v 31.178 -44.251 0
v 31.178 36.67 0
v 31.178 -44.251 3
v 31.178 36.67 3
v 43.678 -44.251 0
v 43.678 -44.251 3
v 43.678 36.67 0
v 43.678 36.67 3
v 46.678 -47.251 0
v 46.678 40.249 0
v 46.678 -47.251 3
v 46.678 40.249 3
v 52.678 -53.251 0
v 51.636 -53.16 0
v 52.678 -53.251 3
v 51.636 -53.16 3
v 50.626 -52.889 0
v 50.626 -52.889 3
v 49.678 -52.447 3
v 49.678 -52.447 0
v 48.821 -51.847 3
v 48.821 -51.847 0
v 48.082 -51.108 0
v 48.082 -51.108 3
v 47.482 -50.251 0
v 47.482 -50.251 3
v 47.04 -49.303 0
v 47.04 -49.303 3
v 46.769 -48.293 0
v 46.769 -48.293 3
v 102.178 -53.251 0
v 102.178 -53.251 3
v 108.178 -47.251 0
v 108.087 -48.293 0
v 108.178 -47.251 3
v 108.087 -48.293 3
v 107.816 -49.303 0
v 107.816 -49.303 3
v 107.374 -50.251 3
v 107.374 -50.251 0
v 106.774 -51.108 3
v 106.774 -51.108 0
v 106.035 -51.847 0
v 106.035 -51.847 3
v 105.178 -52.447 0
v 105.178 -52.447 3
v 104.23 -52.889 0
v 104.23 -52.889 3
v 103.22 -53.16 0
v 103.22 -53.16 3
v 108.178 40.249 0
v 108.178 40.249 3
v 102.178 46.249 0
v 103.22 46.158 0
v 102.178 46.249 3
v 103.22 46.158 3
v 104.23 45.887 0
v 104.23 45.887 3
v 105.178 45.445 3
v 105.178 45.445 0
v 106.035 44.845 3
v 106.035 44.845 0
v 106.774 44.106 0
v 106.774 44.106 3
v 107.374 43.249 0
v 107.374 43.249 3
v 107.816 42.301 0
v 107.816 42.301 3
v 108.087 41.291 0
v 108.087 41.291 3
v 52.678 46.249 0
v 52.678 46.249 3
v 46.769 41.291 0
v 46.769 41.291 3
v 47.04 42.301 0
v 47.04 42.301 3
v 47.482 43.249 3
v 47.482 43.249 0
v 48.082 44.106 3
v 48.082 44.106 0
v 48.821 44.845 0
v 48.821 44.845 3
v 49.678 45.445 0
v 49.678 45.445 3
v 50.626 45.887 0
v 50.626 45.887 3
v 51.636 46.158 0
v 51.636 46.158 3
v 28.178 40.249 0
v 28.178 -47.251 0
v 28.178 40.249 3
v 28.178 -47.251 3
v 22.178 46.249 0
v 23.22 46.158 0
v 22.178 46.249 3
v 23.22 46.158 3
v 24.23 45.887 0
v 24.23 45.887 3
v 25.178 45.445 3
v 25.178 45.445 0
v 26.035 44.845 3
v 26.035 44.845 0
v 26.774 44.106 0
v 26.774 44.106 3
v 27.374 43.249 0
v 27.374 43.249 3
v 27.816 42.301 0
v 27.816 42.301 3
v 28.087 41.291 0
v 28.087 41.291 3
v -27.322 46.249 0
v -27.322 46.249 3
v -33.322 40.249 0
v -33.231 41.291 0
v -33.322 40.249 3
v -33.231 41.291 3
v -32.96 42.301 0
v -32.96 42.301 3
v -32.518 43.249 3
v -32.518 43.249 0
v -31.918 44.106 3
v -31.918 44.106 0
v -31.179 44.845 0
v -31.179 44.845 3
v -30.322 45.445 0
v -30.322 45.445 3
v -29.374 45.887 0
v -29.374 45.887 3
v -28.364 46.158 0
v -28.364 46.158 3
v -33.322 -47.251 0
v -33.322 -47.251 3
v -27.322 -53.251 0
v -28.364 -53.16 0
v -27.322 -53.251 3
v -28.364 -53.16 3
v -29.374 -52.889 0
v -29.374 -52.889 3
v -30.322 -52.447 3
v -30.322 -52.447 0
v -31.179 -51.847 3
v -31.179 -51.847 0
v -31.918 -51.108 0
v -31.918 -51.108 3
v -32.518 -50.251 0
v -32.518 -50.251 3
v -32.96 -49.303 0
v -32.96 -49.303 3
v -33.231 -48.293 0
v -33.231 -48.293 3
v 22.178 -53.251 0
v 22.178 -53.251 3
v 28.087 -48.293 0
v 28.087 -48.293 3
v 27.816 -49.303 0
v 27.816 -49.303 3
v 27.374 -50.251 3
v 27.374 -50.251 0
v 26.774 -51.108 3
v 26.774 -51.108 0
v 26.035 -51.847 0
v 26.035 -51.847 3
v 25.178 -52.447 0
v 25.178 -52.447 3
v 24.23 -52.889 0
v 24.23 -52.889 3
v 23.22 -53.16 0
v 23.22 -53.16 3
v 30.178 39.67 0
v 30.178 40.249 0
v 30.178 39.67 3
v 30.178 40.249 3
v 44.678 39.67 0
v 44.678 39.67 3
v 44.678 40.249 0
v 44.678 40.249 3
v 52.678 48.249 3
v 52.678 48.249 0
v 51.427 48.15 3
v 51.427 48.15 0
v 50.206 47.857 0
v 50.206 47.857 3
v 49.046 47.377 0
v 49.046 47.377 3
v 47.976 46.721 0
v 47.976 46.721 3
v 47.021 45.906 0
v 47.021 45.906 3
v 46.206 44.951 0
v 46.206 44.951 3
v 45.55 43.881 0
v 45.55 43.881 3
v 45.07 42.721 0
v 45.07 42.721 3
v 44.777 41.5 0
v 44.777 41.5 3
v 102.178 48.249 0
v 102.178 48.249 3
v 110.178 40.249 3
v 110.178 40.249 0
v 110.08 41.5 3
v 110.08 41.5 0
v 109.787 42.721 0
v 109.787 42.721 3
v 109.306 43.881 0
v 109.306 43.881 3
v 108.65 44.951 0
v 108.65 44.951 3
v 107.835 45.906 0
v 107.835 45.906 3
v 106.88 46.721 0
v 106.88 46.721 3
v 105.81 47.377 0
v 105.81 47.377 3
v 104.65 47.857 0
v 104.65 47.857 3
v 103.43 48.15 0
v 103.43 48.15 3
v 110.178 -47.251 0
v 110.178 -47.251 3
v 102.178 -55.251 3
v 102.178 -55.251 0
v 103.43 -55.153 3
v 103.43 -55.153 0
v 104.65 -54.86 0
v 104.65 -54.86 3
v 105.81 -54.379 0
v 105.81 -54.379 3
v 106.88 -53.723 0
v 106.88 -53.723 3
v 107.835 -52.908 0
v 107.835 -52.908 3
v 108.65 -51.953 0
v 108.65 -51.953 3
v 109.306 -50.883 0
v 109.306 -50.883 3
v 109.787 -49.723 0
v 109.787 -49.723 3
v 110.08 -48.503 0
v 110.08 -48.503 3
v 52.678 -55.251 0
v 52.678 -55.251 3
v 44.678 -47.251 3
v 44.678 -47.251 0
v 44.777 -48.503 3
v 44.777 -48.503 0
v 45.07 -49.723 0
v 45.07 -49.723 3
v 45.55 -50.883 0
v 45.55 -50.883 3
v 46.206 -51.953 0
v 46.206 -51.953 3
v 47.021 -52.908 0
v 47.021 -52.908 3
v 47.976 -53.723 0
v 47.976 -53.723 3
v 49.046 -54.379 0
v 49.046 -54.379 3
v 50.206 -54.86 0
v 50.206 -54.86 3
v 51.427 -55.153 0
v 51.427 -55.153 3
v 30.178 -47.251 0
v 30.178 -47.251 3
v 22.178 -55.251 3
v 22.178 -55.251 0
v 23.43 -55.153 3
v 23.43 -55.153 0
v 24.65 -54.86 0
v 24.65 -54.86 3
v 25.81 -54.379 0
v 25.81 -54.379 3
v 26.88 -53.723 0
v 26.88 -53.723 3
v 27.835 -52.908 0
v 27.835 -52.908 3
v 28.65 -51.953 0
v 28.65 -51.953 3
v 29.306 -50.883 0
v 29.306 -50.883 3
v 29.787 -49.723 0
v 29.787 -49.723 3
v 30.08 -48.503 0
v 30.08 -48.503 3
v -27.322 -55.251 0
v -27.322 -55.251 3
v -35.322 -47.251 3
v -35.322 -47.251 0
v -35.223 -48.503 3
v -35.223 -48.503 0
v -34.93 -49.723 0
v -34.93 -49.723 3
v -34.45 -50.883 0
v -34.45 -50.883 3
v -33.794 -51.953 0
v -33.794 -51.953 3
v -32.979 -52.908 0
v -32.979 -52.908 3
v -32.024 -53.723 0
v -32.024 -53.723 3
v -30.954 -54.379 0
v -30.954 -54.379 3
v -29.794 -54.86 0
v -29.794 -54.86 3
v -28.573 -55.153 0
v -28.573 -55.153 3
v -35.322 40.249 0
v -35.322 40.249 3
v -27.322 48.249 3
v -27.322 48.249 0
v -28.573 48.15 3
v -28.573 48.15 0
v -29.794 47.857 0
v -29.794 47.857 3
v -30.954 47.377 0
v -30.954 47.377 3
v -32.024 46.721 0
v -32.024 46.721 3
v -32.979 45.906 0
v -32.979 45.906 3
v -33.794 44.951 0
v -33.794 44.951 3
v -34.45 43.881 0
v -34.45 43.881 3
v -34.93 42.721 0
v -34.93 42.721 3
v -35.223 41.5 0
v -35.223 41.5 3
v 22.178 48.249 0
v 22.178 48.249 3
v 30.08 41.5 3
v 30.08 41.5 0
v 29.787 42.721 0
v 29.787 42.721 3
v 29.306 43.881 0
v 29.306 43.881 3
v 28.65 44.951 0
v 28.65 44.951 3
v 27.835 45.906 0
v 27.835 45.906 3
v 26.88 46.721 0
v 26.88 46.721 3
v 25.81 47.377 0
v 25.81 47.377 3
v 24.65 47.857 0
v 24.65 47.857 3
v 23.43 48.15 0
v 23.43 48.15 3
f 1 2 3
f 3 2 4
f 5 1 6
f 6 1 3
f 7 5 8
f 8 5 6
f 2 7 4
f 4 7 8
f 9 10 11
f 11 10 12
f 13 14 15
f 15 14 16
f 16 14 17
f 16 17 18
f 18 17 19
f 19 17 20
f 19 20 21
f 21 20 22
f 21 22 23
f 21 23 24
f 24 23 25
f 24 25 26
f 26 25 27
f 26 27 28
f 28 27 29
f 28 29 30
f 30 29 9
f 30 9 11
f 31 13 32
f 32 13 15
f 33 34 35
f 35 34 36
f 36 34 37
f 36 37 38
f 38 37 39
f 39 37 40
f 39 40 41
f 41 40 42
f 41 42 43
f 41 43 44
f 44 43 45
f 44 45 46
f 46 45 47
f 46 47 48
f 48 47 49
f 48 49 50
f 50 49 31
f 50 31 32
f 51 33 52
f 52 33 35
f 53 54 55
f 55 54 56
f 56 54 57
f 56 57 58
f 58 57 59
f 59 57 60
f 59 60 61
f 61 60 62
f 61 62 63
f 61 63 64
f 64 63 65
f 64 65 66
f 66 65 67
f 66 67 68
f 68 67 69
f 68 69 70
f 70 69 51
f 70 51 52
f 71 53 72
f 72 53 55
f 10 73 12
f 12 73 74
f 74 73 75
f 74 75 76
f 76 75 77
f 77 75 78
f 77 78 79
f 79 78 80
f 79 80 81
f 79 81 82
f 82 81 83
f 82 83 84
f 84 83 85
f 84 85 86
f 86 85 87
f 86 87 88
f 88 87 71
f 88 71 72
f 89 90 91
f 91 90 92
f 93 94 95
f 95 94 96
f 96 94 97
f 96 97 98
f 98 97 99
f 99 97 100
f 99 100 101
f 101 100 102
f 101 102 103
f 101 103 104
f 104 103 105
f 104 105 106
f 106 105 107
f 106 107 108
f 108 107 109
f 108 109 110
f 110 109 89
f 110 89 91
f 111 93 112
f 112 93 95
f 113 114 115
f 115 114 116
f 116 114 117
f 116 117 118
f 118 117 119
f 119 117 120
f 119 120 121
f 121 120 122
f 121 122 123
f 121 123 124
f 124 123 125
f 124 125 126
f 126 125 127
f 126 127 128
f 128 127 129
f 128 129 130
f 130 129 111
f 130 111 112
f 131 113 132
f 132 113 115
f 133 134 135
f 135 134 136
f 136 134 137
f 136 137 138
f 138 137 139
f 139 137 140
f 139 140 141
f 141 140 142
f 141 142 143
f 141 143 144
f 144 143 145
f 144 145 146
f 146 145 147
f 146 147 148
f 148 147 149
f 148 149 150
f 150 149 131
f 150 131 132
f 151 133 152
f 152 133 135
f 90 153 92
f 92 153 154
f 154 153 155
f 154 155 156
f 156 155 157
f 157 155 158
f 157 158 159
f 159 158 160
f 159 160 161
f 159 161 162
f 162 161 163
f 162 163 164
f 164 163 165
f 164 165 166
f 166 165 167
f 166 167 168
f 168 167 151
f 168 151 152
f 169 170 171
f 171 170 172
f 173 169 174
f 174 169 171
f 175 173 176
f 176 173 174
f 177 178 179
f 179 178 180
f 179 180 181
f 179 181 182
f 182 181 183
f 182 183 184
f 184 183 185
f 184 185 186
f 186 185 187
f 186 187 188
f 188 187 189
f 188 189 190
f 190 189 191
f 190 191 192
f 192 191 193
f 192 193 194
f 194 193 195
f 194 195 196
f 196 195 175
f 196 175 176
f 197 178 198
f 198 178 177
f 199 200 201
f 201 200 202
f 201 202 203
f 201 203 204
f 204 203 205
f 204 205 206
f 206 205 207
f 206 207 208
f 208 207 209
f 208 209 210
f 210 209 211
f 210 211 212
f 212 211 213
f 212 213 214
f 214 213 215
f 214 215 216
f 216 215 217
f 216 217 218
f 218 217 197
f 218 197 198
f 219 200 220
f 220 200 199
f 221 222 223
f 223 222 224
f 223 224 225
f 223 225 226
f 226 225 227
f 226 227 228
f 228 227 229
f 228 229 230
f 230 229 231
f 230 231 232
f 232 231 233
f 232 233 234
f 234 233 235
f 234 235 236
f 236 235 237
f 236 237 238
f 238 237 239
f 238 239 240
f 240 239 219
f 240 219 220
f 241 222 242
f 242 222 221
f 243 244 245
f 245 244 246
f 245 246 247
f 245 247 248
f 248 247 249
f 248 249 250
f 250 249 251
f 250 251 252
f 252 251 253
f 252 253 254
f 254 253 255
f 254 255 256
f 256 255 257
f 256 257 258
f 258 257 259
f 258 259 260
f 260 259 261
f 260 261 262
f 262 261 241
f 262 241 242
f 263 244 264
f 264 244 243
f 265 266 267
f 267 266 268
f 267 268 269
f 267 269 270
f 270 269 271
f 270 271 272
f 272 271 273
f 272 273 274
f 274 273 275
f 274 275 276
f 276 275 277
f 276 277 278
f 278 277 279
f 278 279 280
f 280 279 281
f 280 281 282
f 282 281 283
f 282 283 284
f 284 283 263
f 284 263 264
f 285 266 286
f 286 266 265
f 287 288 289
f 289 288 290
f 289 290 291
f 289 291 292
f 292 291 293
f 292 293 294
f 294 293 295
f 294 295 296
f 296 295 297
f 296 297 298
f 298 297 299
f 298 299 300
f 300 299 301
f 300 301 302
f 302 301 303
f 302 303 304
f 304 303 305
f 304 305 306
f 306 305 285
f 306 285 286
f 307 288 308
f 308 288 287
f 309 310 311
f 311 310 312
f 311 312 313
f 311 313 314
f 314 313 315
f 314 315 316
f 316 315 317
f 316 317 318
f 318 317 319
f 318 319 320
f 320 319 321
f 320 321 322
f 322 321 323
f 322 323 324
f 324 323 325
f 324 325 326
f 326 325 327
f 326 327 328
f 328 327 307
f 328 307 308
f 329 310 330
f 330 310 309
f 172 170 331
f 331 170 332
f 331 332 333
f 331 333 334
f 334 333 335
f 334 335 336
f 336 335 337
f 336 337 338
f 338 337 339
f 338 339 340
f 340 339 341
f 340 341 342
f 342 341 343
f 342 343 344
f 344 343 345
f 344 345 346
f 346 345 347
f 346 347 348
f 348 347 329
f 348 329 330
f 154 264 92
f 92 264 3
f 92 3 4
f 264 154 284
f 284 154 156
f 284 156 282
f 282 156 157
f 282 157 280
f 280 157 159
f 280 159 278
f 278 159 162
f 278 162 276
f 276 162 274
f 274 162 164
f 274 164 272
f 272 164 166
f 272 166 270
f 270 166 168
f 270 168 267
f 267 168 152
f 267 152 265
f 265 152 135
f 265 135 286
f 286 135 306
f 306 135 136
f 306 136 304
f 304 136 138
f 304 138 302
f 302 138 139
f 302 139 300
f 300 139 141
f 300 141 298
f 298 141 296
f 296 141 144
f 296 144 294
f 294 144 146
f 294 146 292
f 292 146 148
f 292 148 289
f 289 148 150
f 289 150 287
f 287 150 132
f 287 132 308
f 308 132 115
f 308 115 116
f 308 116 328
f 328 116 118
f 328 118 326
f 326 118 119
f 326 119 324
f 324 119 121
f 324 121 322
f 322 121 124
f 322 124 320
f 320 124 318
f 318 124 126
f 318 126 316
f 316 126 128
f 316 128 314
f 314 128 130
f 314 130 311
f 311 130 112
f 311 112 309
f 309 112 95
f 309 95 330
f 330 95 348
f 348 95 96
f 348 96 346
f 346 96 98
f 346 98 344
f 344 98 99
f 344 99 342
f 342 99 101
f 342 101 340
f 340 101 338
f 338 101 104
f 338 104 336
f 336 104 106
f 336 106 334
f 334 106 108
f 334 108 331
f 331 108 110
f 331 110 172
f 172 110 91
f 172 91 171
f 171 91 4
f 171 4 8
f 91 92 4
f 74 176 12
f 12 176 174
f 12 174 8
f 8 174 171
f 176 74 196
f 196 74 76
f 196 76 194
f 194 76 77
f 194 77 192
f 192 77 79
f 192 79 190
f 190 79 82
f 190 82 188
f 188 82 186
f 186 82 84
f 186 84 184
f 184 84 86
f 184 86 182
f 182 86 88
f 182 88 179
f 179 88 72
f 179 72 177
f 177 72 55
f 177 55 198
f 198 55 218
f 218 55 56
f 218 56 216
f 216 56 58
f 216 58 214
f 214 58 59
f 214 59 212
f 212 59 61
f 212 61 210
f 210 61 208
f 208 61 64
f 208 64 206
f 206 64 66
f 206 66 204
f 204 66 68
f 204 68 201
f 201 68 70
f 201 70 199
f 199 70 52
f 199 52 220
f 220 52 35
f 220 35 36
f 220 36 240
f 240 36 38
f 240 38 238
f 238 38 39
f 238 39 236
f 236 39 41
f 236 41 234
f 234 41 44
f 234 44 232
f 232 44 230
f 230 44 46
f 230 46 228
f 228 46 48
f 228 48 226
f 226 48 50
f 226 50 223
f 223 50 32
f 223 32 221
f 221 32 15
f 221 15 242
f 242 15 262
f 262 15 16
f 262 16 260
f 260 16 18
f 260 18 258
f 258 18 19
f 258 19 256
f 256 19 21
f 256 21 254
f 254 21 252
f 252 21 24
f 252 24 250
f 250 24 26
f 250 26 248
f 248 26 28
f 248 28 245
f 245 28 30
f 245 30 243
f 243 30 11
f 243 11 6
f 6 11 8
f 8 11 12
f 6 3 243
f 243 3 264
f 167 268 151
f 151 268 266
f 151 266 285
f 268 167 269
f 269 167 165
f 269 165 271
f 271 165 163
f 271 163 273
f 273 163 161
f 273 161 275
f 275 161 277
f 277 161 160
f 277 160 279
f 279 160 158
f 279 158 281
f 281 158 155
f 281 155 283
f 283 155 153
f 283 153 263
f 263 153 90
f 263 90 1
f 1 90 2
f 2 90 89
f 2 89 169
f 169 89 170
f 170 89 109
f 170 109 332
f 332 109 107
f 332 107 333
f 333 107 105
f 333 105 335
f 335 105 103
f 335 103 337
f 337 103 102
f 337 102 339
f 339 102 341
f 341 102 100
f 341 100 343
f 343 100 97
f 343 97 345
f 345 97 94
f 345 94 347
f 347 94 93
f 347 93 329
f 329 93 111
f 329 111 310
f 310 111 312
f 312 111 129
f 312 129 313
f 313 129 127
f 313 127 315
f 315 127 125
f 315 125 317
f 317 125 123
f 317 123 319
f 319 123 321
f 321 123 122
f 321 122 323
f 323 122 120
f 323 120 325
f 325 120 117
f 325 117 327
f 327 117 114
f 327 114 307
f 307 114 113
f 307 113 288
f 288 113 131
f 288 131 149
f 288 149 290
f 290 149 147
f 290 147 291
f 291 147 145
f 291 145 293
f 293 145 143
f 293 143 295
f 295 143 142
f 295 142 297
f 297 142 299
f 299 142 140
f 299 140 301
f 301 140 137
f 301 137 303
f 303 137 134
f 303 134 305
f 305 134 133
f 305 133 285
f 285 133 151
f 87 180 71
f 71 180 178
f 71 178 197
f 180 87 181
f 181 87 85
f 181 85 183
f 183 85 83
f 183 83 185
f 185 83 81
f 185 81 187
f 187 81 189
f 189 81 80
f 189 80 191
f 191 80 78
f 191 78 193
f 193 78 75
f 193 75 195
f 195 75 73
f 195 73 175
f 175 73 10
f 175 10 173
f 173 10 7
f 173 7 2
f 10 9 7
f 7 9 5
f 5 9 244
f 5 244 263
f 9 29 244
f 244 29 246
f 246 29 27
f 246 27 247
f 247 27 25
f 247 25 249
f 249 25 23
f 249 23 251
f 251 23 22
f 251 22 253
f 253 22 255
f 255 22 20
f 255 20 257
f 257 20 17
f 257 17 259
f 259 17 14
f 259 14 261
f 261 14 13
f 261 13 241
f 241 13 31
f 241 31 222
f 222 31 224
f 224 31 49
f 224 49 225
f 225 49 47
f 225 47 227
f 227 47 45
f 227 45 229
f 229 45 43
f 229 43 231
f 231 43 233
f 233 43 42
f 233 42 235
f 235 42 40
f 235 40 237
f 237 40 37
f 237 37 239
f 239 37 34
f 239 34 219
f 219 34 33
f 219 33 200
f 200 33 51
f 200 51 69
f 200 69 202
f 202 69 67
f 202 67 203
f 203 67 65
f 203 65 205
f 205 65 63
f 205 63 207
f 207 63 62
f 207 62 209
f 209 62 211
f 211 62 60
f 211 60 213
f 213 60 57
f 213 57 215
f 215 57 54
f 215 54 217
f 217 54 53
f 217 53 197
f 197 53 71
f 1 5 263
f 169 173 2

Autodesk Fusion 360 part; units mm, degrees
sketch "Sketch1" plane through (0, 0, 0) normal (0, 0, 1) x (1, 0, 0)
  line L0 (-27.3219, 46.2488) -> (22.1781, 46.2488)
  line L1 (28.1781, 40.2488) -> (28.1781, -47.2512)
  line L2 (22.1781, -53.2512) -> (-27.3219, -53.2512)
  line L3 (-33.3219, -47.2512) -> (-33.3219, 40.2488)
  arc A0 (28.1781, 40.2488) -> (22.1781, 46.2488) centre (22.1781, 40.2488) ccw
  arc A1 (-33.3219, -47.2512) -> (-27.3219, -53.2512) centre (-27.3219, -47.2512) ccw
  arc A2 (22.1781, -53.2512) -> (28.1781, -47.2512) centre (22.1781, -47.2512) ccw
  arc A3 (-27.3219, 46.2488) -> (-33.3219, 40.2488) centre (-27.3219, 40.2488) ccw
  arc A4 (22.1781, -55.2512) -> (30.1781, -47.2512) centre (22.1781, -47.2512) ccw
  line L4 (30.1781, 40.2488) -> (30.1781, -47.2512)
  arc A5 (30.1781, 40.2488) -> (22.1781, 48.2488) centre (22.1781, 40.2488) ccw
  line L5 (-27.3219, 48.2488) -> (22.1781, 48.2488)
  arc A6 (-27.3219, 48.2488) -> (-35.3219, 40.2488) centre (-27.3219, 40.2488) ccw
  line L6 (-35.3219, -47.2512) -> (-35.3219, 40.2488)
  arc A7 (-35.3219, -47.2512) -> (-27.3219, -55.2512) centre (-27.3219, -47.2512) ccw
  line L7 (22.1781, -55.2512) -> (-27.3219, -55.2512)
  line L8 (52.6781, 48.2488) -> (102.1781, 48.2488)
  line L9 (102.1781, -55.2512) -> (52.6781, -55.2512)
  line L10 (102.1781, -53.2512) -> (52.6781, -53.2512)
  arc A8 (102.1781, -53.2512) -> (108.1781, -47.2512) centre (102.1781, -47.2512) ccw
  line L11 (110.1781, 40.2488) -> (110.1781, -47.2512)
  arc A9 (46.6781, -47.2512) -> (52.6781, -53.2512) centre (52.6781, -47.2512) ccw
  line L12 (46.6781, -47.2512) -> (46.6781, 40.2488)
  line L13 (44.6781, -47.2512) -> (44.6781, 40.2488)
  arc A10 (108.1781, 40.2488) -> (102.1781, 46.2488) centre (102.1781, 40.2488) ccw
  arc A11 (52.6781, 46.2488) -> (46.6781, 40.2488) centre (52.6781, 40.2488) ccw
  arc A12 (52.6781, 48.2488) -> (44.6781, 40.2488) centre (52.6781, 40.2488) ccw
  arc A13 (44.6781, -47.2512) -> (52.6781, -55.2512) centre (52.6781, -47.2512) ccw
  arc A14 (102.1781, -55.2512) -> (110.1781, -47.2512) centre (102.1781, -47.2512) ccw
  arc A15 (110.1781, 40.2488) -> (102.1781, 48.2488) centre (102.1781, 40.2488) ccw
  line L14 (52.6781, 46.2488) -> (102.1781, 46.2488)
  line L15 (108.1781, 40.2488) -> (108.1781, -47.2512)
  line L16 (44.6781, 39.6601) -> (44.6781, -47.2512)
  line L17 (30.1781, -47.2512) -> (30.1781, 39.6601)
  line L18 (28.1781, 39.6696) -> (46.6781, 39.6696)
  line L19 (46.6781, 39.6696) -> (46.6781, -47.2512)
  line L20 (46.6781, -47.2512) -> (28.1781, -47.2512)
  line L21 (28.1781, -47.2512) -> (28.1781, 39.6696)
  line L22 (43.6781, -44.2512) -> (31.1781, -44.2512)
  line L23 (31.1781, -44.2512) -> (31.1781, 36.6696)
  line L24 (31.1781, 36.6696) -> (43.6781, 36.6696)
  line L25 (43.6781, 36.6696) -> (43.6781, -44.2512)
  point P0 (-33.3219, 46.2488)
  point P1 (28.1781, 46.2488)
  point P2 (-33.3219, -53.2512)
  point P3 (108.1781, 46.2488)
  point P4 (46.6781, -53.2512)
  point P5 (46.6781, 46.2488)
  point P6 (80, 0)
  dimension "d1" = 61.5
  dimension "d2" = 99.5
  dimension "d3" = 6
  dimension "d4" = 2
  dimension "d7" = 80
  dimension "d8" = 0
  dimension "d11" = 3
extrude "Extrude1" add sketch "Sketch1" along normal blind 3 contours L0 L1 L2 L3 A0 A1 A2 A3 A4 L4 A5 L5 A6 L6 A7 L7 L18 L20 | L1 L4 L17 L18 L20 L21 | L4 L13 L16 L17 L18 L20 | L12 L13 L16 L18 L19 L20 | L8 L9 L10 A8 L11 A9 L12 L13 A10 A11 A12 A13 A14 A15 L14 L15 L18 L20
